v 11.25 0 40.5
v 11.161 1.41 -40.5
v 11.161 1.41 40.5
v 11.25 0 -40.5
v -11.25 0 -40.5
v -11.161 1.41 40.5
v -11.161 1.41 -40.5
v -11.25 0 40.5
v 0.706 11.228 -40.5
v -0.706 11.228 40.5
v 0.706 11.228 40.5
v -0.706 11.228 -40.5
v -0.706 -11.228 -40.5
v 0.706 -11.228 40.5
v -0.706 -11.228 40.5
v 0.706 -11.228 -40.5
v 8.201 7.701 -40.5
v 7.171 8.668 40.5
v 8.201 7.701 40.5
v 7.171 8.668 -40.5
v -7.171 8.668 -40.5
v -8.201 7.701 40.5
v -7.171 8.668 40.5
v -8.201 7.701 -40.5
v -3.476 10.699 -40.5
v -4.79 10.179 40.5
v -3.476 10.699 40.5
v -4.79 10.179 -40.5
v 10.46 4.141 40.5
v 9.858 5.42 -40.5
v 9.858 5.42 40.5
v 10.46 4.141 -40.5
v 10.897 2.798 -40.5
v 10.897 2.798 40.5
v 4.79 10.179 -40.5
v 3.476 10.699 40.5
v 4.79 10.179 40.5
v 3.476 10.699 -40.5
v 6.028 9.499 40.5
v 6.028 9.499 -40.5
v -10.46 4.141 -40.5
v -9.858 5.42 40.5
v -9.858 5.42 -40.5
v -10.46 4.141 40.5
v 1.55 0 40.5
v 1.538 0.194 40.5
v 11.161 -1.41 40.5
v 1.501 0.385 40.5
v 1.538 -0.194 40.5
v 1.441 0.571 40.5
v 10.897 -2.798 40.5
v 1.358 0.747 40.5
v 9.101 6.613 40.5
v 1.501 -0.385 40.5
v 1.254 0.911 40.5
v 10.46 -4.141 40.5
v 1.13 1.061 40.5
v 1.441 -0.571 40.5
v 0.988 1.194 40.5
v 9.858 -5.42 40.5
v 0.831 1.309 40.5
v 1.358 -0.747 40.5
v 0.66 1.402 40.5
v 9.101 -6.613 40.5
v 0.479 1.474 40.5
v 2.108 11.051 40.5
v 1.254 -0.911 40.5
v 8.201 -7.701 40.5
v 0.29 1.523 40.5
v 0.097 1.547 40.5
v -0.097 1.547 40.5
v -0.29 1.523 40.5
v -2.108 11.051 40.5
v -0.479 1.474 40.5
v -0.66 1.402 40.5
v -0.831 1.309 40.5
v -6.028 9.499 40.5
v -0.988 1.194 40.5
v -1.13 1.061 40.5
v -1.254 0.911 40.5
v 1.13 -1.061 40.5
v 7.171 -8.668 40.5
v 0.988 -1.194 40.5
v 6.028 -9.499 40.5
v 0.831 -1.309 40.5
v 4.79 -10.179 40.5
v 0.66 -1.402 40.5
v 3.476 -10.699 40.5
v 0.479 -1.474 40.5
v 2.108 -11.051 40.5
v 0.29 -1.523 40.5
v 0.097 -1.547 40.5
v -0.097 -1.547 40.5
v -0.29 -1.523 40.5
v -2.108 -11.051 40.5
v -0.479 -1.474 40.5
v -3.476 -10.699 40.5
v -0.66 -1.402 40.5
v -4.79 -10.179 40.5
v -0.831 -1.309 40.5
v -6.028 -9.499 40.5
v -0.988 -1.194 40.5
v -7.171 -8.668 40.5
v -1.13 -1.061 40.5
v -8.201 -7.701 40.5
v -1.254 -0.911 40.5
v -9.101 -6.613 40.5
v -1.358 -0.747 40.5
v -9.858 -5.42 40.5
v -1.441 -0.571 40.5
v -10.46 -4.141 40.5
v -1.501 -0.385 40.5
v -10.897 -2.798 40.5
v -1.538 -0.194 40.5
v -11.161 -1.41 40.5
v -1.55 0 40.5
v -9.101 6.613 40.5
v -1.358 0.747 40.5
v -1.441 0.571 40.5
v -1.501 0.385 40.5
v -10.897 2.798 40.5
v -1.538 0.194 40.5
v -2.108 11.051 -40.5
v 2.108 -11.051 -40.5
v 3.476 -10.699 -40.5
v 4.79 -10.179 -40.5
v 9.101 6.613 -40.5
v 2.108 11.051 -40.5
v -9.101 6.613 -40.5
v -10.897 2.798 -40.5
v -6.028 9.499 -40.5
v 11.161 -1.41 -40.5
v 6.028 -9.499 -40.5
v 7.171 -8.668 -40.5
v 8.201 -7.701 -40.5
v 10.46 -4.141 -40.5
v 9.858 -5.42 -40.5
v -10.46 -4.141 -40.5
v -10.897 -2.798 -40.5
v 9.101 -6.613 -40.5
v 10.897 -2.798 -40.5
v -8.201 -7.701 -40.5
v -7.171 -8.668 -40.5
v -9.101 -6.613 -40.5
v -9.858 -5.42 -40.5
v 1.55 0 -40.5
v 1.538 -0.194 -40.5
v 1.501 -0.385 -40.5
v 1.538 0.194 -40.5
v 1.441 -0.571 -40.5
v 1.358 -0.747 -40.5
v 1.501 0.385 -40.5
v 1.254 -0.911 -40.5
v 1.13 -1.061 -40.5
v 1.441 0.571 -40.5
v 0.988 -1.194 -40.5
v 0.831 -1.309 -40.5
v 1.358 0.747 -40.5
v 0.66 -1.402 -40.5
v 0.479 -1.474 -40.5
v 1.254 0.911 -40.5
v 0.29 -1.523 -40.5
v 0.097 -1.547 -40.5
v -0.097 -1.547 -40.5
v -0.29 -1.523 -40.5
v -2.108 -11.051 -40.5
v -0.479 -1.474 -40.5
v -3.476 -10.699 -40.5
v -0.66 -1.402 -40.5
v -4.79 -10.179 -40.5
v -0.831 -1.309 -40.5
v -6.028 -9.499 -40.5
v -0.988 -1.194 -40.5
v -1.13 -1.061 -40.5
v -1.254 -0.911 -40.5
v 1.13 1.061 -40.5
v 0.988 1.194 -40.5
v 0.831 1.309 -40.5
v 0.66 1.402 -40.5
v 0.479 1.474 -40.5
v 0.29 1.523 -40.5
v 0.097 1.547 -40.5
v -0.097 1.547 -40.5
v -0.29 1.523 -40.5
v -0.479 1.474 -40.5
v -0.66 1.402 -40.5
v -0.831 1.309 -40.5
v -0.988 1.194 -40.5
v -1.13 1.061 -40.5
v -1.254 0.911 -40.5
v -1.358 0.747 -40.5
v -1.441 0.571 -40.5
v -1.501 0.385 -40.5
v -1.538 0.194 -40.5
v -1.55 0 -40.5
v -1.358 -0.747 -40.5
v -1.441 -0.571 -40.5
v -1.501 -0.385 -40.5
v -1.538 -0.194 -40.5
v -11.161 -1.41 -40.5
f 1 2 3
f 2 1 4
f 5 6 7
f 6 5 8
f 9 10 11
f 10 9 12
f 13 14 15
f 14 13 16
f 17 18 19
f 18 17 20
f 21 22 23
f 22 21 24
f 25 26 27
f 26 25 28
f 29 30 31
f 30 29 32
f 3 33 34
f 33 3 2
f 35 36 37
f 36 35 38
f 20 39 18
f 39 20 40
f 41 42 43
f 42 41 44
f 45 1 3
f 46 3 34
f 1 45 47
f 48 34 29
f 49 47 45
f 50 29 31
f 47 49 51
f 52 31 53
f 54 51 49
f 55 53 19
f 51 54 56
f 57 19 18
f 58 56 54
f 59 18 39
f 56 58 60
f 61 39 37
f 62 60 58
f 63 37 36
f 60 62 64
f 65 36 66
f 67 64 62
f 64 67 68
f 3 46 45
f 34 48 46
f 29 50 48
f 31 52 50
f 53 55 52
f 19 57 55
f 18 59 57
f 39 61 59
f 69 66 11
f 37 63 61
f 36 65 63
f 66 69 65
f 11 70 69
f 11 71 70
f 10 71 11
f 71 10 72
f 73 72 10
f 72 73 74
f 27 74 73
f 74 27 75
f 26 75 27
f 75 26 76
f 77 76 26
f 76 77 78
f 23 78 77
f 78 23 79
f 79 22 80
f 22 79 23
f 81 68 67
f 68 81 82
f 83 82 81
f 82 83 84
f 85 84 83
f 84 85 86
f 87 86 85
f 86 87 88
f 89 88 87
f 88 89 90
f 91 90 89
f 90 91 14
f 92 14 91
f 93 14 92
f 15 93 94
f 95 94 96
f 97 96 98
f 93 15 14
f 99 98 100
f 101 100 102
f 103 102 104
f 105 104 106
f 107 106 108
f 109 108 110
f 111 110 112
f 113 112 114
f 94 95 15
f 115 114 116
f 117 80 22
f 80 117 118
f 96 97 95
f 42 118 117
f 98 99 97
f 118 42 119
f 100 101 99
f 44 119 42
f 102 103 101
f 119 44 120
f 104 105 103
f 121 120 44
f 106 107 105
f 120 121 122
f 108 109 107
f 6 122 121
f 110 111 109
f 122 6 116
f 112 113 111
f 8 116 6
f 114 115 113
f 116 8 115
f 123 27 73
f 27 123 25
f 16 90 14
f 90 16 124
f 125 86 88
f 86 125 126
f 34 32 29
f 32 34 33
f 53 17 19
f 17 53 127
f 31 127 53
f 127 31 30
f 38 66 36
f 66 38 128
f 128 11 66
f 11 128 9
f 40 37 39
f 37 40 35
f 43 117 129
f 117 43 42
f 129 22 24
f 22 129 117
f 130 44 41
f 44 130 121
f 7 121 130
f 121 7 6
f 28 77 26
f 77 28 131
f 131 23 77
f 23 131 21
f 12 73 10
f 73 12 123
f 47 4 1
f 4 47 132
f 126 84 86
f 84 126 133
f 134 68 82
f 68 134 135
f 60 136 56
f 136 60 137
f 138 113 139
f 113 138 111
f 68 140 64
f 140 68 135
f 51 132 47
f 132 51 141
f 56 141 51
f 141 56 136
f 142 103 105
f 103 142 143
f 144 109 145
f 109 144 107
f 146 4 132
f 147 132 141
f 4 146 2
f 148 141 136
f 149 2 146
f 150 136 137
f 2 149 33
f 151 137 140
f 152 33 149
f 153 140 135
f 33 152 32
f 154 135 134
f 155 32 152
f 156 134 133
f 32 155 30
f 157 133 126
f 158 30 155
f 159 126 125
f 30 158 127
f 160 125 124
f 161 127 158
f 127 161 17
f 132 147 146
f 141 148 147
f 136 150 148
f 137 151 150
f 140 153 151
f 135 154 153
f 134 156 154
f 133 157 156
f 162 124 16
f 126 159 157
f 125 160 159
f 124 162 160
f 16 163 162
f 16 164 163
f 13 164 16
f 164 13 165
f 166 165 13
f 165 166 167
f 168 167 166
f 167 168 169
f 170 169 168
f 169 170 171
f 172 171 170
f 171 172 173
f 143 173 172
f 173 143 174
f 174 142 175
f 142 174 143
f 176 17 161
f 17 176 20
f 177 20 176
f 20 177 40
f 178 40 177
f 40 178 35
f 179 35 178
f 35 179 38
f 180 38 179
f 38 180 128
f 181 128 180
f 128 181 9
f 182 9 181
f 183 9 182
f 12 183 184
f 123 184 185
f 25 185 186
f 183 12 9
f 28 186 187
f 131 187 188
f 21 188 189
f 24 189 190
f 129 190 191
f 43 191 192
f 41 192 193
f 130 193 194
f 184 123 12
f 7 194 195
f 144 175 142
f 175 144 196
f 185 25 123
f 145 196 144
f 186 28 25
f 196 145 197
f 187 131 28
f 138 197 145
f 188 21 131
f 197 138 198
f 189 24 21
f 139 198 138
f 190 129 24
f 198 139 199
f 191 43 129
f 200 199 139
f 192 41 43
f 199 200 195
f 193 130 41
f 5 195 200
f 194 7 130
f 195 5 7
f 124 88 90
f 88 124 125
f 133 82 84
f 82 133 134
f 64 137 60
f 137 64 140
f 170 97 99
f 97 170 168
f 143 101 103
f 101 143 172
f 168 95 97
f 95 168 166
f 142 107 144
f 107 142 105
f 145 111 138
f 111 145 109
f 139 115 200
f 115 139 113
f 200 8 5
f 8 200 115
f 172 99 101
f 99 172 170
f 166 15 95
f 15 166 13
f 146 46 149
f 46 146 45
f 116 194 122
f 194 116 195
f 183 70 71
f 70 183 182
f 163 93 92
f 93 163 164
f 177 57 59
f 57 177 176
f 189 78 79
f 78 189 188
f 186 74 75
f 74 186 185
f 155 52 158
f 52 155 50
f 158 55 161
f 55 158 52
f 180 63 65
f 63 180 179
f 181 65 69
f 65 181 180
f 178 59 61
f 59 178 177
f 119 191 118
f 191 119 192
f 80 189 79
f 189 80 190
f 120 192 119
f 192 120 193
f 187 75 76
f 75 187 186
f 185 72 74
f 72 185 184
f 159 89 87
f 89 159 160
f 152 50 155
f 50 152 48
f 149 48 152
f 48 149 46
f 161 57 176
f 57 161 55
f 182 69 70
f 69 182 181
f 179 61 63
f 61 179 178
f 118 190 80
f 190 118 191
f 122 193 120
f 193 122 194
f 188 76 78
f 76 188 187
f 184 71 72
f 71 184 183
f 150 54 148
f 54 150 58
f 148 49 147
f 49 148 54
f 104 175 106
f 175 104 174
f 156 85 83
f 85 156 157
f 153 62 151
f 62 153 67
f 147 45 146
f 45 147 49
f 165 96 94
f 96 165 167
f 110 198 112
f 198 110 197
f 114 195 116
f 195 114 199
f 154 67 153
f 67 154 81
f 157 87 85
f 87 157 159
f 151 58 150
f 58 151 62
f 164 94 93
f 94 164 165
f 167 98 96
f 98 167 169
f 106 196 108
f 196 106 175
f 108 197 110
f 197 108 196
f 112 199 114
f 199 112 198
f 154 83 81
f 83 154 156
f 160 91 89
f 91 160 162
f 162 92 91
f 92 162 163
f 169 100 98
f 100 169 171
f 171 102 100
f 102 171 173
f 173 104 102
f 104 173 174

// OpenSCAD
$fn = 50;


difference() {
	union() {
		translate(v = [0, 0, -40.5000000000]) {
			cylinder(h = 81, r = 11.2500000000);
		}
	}
	union() {
		translate(v = [0, 0, -100.0000000000]) {
			cylinder(h = 200, r = 1.5500000000);
		}
	}
}
